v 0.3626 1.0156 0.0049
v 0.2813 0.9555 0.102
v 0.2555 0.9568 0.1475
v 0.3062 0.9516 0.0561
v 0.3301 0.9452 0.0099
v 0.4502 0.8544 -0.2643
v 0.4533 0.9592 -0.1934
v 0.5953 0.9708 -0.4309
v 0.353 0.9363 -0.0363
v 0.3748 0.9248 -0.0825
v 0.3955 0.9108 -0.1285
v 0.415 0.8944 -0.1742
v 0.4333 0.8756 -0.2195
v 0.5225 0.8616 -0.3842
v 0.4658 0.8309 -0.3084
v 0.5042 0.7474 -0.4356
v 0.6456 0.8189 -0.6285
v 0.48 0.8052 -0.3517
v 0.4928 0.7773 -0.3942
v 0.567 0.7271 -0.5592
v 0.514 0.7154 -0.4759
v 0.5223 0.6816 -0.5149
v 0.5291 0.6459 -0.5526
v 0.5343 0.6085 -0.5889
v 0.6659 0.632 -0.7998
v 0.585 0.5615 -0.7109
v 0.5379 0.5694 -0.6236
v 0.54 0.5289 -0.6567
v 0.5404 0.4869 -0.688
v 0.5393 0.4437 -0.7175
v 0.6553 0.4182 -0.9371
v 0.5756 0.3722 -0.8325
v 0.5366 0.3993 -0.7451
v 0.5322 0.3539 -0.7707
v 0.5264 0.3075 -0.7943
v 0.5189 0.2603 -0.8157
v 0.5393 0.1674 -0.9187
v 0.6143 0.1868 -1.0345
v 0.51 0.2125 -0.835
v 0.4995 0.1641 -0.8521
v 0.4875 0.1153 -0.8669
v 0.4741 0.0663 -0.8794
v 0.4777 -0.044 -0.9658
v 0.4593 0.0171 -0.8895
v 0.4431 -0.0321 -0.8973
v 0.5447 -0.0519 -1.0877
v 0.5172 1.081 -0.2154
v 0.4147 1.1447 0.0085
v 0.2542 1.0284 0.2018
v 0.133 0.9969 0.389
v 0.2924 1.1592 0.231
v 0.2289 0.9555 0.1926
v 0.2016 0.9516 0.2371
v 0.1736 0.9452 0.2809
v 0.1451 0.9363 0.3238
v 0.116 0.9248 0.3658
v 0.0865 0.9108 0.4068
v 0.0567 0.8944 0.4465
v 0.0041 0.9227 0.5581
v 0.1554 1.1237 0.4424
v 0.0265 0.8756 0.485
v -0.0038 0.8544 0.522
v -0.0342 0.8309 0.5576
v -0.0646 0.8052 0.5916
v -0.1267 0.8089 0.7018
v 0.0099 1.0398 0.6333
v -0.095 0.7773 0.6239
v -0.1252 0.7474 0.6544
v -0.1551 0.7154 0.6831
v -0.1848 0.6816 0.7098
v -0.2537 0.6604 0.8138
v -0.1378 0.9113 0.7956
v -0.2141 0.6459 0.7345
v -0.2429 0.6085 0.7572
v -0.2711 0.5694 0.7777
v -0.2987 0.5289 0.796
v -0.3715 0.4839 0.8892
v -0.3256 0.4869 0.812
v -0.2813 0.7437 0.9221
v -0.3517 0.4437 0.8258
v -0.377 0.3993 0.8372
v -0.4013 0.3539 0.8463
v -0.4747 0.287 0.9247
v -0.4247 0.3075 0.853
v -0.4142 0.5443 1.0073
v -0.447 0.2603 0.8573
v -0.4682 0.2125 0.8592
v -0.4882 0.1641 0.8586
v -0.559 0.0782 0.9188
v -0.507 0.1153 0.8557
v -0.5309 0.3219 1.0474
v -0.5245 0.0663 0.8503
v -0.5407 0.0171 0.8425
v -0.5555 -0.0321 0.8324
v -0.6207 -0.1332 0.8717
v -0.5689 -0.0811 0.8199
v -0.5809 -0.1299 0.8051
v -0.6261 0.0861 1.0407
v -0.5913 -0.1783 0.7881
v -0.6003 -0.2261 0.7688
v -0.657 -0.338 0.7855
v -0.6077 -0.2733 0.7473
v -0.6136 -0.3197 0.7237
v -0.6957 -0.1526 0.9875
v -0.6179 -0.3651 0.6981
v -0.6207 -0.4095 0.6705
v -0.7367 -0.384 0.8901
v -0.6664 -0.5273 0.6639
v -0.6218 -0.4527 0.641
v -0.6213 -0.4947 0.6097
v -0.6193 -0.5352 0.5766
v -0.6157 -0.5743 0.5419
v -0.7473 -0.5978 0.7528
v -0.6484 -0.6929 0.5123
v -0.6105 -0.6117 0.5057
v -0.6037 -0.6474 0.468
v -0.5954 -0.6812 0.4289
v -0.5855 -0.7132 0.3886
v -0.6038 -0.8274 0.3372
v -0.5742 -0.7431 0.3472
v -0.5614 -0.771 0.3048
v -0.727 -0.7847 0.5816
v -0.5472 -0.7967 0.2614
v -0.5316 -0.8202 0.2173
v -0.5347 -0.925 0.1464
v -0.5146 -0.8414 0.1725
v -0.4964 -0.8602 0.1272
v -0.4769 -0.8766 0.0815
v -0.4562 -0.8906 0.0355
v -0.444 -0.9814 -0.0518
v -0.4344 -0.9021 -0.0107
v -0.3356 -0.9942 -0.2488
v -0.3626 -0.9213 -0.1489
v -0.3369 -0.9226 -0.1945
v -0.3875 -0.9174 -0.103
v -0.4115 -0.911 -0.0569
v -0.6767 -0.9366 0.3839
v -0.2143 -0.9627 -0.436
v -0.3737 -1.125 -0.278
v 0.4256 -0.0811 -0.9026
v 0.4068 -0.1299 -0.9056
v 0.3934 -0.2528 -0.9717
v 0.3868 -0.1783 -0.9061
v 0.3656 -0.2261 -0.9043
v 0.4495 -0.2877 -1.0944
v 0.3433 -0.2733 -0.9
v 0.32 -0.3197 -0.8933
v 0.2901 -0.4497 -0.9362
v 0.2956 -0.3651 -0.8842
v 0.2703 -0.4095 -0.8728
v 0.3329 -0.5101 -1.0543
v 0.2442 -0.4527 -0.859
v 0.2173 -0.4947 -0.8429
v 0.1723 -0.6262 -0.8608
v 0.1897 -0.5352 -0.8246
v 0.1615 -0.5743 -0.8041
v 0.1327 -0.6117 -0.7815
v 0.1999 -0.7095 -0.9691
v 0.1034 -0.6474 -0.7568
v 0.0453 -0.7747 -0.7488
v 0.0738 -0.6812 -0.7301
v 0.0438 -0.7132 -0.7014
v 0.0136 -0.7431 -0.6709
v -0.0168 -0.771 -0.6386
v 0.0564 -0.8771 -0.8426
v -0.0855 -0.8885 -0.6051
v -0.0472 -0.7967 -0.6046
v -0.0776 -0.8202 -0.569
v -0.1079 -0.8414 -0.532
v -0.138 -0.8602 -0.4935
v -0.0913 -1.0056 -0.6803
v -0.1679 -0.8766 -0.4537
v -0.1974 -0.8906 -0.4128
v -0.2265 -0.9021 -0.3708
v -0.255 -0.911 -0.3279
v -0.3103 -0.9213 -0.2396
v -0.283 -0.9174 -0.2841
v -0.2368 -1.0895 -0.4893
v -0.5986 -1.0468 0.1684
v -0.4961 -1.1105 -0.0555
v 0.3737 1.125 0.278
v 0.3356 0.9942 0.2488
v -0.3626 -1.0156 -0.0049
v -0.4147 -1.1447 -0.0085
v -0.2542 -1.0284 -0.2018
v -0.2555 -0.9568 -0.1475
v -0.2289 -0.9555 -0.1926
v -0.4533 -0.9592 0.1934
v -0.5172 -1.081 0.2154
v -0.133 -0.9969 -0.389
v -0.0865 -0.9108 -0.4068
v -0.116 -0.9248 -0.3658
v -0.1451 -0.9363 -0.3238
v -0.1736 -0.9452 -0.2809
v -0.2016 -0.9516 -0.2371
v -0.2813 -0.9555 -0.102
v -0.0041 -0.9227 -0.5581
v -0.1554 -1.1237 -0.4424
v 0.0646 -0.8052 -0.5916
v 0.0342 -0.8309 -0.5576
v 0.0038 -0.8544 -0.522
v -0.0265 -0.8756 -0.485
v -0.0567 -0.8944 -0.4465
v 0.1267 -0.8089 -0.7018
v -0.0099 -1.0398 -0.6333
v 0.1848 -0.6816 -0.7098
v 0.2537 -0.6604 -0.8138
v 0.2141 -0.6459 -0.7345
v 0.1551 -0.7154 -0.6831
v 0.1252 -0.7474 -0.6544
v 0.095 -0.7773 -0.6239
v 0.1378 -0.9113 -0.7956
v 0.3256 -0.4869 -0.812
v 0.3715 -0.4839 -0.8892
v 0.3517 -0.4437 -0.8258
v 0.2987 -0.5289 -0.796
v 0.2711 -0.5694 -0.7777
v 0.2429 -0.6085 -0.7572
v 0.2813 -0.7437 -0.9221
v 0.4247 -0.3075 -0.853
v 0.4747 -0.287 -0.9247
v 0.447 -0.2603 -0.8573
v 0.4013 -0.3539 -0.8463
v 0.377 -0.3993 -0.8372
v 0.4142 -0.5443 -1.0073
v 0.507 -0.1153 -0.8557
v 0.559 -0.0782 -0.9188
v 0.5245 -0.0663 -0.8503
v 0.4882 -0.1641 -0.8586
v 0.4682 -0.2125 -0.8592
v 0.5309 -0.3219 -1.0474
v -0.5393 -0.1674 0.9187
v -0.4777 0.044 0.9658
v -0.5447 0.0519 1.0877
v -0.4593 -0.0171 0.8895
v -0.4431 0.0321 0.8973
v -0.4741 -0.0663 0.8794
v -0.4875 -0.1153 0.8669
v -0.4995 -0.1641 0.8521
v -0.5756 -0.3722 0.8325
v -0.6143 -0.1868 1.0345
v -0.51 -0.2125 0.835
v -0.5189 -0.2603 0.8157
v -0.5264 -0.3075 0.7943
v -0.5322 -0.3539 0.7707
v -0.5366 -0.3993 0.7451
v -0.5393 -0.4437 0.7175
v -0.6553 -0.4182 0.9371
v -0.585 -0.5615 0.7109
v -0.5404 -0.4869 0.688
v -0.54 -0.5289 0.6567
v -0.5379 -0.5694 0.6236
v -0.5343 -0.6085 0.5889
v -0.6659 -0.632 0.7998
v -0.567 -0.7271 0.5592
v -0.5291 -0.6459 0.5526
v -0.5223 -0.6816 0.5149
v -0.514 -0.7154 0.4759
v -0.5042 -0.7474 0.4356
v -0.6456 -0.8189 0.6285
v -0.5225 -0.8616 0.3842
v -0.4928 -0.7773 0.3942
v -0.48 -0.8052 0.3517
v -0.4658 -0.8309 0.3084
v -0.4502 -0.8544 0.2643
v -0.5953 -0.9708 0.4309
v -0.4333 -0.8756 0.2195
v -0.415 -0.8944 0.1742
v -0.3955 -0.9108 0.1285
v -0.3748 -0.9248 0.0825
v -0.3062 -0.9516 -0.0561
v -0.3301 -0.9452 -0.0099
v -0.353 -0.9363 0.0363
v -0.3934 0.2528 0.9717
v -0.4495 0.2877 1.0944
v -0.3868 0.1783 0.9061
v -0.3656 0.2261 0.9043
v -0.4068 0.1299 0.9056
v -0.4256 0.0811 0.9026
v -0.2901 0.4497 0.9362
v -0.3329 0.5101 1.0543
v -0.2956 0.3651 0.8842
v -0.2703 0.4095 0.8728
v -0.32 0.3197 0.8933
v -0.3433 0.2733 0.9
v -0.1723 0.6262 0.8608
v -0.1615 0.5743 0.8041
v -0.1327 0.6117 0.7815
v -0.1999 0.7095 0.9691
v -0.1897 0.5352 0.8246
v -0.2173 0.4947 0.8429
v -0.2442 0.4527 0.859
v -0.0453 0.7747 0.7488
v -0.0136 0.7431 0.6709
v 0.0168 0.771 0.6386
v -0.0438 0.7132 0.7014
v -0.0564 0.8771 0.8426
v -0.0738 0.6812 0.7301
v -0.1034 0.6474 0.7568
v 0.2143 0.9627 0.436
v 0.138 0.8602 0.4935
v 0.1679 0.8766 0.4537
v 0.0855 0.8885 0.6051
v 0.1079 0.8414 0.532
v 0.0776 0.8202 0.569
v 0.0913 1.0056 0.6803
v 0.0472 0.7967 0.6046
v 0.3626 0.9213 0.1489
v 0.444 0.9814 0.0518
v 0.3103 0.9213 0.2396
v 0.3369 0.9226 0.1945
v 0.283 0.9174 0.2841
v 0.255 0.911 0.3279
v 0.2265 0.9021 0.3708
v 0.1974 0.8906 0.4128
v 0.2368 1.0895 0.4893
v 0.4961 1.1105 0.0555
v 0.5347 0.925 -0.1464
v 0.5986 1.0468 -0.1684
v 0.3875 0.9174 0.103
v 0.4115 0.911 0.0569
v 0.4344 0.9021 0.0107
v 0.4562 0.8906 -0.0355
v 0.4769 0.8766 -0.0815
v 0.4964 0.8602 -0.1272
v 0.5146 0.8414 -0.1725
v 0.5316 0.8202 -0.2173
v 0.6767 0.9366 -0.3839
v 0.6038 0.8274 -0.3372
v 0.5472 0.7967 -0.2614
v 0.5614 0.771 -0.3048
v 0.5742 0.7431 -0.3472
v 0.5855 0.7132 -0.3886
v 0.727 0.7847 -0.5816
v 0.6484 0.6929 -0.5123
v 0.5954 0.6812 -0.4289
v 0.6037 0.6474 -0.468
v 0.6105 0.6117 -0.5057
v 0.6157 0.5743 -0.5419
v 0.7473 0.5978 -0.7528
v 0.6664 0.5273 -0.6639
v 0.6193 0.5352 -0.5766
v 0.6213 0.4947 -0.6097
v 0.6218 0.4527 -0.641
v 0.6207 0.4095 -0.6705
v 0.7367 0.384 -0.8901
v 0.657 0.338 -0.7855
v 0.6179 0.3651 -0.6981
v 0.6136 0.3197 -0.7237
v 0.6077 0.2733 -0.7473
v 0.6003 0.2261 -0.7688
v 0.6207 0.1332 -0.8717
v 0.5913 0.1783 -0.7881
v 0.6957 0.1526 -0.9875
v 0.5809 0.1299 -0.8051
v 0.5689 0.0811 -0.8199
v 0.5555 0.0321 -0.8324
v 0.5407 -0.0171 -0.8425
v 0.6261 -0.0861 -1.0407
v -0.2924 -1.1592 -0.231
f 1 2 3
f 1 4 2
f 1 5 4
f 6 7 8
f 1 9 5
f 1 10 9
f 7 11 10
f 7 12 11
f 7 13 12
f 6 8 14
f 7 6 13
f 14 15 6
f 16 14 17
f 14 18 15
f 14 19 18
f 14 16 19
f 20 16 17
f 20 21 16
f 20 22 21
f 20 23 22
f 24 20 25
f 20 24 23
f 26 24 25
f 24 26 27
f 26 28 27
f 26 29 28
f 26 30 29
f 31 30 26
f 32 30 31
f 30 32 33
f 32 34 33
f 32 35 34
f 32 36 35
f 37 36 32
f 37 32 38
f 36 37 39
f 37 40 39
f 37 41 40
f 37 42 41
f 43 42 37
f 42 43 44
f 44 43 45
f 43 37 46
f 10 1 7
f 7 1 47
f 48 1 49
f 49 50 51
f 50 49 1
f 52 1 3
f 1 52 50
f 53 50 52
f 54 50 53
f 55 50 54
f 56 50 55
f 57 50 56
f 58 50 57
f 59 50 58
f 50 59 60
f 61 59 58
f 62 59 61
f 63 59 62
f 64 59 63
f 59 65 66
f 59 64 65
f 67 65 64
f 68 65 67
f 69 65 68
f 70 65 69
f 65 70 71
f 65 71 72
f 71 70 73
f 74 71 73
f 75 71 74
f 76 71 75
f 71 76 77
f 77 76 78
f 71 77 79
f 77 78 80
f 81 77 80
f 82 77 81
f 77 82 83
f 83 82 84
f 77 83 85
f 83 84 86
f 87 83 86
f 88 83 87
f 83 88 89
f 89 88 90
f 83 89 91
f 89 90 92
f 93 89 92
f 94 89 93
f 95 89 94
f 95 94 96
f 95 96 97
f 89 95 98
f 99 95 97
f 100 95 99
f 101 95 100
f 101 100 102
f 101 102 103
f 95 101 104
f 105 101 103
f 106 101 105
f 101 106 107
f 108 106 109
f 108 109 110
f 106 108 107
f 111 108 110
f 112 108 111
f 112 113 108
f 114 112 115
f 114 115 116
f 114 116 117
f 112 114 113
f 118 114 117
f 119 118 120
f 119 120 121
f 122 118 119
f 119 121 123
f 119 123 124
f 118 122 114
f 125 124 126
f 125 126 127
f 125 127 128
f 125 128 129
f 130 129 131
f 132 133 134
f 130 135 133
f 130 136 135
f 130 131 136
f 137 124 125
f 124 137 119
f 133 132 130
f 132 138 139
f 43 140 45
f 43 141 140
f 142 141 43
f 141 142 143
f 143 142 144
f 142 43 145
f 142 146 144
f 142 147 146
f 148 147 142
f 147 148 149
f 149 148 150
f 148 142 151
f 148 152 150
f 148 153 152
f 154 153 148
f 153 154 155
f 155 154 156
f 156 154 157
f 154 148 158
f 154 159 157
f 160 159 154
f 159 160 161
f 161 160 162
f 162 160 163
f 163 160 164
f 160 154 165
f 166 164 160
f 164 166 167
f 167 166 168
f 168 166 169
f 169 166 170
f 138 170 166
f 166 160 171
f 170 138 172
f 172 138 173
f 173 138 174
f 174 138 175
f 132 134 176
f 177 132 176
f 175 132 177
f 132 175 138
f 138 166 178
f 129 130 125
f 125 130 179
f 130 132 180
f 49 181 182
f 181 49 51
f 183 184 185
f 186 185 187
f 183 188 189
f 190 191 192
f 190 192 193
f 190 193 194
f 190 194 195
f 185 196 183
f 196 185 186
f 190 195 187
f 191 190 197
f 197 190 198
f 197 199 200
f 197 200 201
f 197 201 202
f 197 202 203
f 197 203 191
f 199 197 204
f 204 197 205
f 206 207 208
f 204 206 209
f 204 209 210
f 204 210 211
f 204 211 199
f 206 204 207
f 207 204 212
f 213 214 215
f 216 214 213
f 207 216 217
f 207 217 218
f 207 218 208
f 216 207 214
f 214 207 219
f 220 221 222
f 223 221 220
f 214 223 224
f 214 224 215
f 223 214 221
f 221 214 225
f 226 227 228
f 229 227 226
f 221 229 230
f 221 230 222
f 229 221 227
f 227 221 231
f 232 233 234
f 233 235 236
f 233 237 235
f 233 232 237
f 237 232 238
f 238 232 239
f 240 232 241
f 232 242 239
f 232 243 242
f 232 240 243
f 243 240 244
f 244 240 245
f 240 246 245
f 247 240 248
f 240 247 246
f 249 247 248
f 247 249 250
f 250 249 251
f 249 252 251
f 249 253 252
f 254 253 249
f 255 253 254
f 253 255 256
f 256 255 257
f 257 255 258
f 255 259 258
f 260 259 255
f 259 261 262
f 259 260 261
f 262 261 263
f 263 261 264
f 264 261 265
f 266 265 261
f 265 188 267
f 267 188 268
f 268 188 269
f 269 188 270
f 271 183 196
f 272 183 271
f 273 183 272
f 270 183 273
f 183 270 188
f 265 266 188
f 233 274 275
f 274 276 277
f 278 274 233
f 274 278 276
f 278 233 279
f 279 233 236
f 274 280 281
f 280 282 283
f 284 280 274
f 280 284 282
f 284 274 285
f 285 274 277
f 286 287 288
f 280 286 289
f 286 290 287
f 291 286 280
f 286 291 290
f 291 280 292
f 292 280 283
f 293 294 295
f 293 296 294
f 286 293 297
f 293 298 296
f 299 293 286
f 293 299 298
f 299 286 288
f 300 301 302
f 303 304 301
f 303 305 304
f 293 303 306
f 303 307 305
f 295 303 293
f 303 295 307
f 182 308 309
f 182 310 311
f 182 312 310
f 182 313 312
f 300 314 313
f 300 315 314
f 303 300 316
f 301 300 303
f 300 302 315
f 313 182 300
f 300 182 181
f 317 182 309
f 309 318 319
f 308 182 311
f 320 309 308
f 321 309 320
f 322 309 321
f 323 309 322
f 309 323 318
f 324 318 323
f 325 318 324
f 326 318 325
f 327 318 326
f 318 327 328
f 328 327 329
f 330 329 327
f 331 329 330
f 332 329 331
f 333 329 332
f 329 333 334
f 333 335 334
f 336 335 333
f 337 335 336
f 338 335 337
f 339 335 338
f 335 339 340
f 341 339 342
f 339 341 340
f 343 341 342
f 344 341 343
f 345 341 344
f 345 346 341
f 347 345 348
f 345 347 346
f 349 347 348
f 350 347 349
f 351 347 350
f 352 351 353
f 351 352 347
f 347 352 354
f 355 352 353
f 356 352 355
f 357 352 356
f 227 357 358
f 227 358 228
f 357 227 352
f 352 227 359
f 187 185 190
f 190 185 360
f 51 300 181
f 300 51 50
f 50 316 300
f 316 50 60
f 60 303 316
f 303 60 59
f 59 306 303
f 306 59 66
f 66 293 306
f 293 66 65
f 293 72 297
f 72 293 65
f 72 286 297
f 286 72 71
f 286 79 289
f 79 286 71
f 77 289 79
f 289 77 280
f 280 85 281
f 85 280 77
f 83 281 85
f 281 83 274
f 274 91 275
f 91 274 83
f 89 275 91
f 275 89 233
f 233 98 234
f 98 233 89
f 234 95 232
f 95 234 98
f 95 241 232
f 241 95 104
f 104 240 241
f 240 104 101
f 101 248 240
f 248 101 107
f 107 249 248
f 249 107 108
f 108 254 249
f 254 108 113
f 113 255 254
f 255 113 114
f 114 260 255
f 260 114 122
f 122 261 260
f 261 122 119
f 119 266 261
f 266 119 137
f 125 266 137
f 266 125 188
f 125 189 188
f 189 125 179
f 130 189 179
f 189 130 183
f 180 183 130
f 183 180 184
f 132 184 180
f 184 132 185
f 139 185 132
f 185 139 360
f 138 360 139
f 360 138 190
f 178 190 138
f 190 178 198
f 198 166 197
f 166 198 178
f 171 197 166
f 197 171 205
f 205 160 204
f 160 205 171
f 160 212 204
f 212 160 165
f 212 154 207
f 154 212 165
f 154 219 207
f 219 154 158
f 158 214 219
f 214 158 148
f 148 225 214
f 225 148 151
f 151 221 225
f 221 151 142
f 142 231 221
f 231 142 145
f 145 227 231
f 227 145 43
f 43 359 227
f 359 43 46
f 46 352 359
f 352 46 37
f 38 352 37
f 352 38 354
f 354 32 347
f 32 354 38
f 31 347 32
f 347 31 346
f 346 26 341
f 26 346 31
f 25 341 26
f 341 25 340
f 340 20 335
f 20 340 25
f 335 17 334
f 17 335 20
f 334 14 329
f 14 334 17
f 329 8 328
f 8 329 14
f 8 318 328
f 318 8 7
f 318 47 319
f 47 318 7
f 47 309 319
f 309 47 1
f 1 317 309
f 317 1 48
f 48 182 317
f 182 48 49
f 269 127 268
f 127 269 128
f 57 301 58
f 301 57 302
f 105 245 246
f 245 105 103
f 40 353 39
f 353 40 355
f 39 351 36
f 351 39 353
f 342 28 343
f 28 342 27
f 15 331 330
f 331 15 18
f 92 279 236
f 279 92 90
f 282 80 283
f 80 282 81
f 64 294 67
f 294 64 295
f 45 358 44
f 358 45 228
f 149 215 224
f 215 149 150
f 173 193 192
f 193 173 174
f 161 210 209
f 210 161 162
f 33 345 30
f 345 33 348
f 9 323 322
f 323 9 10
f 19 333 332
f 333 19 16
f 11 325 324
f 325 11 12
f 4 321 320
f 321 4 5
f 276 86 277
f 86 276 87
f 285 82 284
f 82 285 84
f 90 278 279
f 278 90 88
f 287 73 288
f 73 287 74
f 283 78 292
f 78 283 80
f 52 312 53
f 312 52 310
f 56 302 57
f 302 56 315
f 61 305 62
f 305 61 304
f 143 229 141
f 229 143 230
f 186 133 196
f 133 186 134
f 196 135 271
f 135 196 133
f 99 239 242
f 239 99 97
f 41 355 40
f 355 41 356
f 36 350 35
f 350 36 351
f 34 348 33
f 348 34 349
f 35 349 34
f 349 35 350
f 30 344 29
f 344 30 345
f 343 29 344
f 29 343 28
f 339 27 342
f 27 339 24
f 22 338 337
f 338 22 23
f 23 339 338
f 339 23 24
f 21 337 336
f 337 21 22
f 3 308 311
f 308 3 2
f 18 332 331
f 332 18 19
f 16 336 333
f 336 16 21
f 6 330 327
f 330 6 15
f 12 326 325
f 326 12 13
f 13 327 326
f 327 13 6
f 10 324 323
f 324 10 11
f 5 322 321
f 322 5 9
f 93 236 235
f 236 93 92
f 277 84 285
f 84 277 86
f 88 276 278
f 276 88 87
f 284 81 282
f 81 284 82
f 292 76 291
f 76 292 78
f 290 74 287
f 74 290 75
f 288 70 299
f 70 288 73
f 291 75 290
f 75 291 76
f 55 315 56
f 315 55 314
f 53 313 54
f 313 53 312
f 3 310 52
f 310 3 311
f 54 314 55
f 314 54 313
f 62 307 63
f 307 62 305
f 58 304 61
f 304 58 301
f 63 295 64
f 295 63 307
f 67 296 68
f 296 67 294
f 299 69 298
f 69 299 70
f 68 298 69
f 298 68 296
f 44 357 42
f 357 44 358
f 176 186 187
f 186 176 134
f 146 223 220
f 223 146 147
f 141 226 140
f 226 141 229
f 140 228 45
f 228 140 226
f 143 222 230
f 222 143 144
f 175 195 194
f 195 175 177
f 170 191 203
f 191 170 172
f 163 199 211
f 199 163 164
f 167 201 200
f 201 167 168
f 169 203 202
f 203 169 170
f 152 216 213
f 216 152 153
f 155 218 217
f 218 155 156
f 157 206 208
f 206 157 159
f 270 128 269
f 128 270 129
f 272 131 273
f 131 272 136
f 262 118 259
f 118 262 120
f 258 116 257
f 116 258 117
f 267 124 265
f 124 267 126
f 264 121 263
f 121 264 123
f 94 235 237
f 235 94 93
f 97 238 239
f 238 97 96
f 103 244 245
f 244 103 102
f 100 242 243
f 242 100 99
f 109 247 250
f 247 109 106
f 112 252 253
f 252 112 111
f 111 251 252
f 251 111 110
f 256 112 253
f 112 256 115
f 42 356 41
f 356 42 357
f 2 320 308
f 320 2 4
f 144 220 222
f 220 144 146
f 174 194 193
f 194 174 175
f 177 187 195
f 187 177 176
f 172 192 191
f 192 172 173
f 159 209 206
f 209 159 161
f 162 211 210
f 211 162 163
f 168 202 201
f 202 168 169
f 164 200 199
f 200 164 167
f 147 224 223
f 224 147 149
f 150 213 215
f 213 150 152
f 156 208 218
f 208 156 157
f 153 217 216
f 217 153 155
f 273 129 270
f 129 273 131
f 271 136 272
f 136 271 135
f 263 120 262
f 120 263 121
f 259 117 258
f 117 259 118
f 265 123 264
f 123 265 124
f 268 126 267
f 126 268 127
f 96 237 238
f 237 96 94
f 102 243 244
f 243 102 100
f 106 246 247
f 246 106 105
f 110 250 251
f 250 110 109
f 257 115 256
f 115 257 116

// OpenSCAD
$fa = 3;
$fs = 0.01;
$vpr = [0, 0, 0];
$vpt = [5, 0, 5];

inner = false;

num_spikes = 30;

module base() {
    union() {
        cylinder(0.1, r = 1, center = true);

        for (i = [1:num_spikes]) {
            rotate([0, 0, 360/num_spikes*i]) {
                translate([0, 1, 0]) {
                    linear_extrude(height = 0.1, center = true) {
                        polygon(points = [[-0.2, 0], [0.2, 0.2], [0, -1]]);
                    }
                }
            }
        }
    }
}

rotate([20, 60, 0])
if (inner) {
    intersection() {
        cylinder(1, r = 1, center = true);
        difference() {
            base();
            cylinder(1, r = 0.4, center = true);
        }
    }
} else {
    intersection() {
        cylinder(1, r = 10, center = true);
        difference() {
            base();
            cylinder(1, r = 1, center = true);
        }
    }
}
